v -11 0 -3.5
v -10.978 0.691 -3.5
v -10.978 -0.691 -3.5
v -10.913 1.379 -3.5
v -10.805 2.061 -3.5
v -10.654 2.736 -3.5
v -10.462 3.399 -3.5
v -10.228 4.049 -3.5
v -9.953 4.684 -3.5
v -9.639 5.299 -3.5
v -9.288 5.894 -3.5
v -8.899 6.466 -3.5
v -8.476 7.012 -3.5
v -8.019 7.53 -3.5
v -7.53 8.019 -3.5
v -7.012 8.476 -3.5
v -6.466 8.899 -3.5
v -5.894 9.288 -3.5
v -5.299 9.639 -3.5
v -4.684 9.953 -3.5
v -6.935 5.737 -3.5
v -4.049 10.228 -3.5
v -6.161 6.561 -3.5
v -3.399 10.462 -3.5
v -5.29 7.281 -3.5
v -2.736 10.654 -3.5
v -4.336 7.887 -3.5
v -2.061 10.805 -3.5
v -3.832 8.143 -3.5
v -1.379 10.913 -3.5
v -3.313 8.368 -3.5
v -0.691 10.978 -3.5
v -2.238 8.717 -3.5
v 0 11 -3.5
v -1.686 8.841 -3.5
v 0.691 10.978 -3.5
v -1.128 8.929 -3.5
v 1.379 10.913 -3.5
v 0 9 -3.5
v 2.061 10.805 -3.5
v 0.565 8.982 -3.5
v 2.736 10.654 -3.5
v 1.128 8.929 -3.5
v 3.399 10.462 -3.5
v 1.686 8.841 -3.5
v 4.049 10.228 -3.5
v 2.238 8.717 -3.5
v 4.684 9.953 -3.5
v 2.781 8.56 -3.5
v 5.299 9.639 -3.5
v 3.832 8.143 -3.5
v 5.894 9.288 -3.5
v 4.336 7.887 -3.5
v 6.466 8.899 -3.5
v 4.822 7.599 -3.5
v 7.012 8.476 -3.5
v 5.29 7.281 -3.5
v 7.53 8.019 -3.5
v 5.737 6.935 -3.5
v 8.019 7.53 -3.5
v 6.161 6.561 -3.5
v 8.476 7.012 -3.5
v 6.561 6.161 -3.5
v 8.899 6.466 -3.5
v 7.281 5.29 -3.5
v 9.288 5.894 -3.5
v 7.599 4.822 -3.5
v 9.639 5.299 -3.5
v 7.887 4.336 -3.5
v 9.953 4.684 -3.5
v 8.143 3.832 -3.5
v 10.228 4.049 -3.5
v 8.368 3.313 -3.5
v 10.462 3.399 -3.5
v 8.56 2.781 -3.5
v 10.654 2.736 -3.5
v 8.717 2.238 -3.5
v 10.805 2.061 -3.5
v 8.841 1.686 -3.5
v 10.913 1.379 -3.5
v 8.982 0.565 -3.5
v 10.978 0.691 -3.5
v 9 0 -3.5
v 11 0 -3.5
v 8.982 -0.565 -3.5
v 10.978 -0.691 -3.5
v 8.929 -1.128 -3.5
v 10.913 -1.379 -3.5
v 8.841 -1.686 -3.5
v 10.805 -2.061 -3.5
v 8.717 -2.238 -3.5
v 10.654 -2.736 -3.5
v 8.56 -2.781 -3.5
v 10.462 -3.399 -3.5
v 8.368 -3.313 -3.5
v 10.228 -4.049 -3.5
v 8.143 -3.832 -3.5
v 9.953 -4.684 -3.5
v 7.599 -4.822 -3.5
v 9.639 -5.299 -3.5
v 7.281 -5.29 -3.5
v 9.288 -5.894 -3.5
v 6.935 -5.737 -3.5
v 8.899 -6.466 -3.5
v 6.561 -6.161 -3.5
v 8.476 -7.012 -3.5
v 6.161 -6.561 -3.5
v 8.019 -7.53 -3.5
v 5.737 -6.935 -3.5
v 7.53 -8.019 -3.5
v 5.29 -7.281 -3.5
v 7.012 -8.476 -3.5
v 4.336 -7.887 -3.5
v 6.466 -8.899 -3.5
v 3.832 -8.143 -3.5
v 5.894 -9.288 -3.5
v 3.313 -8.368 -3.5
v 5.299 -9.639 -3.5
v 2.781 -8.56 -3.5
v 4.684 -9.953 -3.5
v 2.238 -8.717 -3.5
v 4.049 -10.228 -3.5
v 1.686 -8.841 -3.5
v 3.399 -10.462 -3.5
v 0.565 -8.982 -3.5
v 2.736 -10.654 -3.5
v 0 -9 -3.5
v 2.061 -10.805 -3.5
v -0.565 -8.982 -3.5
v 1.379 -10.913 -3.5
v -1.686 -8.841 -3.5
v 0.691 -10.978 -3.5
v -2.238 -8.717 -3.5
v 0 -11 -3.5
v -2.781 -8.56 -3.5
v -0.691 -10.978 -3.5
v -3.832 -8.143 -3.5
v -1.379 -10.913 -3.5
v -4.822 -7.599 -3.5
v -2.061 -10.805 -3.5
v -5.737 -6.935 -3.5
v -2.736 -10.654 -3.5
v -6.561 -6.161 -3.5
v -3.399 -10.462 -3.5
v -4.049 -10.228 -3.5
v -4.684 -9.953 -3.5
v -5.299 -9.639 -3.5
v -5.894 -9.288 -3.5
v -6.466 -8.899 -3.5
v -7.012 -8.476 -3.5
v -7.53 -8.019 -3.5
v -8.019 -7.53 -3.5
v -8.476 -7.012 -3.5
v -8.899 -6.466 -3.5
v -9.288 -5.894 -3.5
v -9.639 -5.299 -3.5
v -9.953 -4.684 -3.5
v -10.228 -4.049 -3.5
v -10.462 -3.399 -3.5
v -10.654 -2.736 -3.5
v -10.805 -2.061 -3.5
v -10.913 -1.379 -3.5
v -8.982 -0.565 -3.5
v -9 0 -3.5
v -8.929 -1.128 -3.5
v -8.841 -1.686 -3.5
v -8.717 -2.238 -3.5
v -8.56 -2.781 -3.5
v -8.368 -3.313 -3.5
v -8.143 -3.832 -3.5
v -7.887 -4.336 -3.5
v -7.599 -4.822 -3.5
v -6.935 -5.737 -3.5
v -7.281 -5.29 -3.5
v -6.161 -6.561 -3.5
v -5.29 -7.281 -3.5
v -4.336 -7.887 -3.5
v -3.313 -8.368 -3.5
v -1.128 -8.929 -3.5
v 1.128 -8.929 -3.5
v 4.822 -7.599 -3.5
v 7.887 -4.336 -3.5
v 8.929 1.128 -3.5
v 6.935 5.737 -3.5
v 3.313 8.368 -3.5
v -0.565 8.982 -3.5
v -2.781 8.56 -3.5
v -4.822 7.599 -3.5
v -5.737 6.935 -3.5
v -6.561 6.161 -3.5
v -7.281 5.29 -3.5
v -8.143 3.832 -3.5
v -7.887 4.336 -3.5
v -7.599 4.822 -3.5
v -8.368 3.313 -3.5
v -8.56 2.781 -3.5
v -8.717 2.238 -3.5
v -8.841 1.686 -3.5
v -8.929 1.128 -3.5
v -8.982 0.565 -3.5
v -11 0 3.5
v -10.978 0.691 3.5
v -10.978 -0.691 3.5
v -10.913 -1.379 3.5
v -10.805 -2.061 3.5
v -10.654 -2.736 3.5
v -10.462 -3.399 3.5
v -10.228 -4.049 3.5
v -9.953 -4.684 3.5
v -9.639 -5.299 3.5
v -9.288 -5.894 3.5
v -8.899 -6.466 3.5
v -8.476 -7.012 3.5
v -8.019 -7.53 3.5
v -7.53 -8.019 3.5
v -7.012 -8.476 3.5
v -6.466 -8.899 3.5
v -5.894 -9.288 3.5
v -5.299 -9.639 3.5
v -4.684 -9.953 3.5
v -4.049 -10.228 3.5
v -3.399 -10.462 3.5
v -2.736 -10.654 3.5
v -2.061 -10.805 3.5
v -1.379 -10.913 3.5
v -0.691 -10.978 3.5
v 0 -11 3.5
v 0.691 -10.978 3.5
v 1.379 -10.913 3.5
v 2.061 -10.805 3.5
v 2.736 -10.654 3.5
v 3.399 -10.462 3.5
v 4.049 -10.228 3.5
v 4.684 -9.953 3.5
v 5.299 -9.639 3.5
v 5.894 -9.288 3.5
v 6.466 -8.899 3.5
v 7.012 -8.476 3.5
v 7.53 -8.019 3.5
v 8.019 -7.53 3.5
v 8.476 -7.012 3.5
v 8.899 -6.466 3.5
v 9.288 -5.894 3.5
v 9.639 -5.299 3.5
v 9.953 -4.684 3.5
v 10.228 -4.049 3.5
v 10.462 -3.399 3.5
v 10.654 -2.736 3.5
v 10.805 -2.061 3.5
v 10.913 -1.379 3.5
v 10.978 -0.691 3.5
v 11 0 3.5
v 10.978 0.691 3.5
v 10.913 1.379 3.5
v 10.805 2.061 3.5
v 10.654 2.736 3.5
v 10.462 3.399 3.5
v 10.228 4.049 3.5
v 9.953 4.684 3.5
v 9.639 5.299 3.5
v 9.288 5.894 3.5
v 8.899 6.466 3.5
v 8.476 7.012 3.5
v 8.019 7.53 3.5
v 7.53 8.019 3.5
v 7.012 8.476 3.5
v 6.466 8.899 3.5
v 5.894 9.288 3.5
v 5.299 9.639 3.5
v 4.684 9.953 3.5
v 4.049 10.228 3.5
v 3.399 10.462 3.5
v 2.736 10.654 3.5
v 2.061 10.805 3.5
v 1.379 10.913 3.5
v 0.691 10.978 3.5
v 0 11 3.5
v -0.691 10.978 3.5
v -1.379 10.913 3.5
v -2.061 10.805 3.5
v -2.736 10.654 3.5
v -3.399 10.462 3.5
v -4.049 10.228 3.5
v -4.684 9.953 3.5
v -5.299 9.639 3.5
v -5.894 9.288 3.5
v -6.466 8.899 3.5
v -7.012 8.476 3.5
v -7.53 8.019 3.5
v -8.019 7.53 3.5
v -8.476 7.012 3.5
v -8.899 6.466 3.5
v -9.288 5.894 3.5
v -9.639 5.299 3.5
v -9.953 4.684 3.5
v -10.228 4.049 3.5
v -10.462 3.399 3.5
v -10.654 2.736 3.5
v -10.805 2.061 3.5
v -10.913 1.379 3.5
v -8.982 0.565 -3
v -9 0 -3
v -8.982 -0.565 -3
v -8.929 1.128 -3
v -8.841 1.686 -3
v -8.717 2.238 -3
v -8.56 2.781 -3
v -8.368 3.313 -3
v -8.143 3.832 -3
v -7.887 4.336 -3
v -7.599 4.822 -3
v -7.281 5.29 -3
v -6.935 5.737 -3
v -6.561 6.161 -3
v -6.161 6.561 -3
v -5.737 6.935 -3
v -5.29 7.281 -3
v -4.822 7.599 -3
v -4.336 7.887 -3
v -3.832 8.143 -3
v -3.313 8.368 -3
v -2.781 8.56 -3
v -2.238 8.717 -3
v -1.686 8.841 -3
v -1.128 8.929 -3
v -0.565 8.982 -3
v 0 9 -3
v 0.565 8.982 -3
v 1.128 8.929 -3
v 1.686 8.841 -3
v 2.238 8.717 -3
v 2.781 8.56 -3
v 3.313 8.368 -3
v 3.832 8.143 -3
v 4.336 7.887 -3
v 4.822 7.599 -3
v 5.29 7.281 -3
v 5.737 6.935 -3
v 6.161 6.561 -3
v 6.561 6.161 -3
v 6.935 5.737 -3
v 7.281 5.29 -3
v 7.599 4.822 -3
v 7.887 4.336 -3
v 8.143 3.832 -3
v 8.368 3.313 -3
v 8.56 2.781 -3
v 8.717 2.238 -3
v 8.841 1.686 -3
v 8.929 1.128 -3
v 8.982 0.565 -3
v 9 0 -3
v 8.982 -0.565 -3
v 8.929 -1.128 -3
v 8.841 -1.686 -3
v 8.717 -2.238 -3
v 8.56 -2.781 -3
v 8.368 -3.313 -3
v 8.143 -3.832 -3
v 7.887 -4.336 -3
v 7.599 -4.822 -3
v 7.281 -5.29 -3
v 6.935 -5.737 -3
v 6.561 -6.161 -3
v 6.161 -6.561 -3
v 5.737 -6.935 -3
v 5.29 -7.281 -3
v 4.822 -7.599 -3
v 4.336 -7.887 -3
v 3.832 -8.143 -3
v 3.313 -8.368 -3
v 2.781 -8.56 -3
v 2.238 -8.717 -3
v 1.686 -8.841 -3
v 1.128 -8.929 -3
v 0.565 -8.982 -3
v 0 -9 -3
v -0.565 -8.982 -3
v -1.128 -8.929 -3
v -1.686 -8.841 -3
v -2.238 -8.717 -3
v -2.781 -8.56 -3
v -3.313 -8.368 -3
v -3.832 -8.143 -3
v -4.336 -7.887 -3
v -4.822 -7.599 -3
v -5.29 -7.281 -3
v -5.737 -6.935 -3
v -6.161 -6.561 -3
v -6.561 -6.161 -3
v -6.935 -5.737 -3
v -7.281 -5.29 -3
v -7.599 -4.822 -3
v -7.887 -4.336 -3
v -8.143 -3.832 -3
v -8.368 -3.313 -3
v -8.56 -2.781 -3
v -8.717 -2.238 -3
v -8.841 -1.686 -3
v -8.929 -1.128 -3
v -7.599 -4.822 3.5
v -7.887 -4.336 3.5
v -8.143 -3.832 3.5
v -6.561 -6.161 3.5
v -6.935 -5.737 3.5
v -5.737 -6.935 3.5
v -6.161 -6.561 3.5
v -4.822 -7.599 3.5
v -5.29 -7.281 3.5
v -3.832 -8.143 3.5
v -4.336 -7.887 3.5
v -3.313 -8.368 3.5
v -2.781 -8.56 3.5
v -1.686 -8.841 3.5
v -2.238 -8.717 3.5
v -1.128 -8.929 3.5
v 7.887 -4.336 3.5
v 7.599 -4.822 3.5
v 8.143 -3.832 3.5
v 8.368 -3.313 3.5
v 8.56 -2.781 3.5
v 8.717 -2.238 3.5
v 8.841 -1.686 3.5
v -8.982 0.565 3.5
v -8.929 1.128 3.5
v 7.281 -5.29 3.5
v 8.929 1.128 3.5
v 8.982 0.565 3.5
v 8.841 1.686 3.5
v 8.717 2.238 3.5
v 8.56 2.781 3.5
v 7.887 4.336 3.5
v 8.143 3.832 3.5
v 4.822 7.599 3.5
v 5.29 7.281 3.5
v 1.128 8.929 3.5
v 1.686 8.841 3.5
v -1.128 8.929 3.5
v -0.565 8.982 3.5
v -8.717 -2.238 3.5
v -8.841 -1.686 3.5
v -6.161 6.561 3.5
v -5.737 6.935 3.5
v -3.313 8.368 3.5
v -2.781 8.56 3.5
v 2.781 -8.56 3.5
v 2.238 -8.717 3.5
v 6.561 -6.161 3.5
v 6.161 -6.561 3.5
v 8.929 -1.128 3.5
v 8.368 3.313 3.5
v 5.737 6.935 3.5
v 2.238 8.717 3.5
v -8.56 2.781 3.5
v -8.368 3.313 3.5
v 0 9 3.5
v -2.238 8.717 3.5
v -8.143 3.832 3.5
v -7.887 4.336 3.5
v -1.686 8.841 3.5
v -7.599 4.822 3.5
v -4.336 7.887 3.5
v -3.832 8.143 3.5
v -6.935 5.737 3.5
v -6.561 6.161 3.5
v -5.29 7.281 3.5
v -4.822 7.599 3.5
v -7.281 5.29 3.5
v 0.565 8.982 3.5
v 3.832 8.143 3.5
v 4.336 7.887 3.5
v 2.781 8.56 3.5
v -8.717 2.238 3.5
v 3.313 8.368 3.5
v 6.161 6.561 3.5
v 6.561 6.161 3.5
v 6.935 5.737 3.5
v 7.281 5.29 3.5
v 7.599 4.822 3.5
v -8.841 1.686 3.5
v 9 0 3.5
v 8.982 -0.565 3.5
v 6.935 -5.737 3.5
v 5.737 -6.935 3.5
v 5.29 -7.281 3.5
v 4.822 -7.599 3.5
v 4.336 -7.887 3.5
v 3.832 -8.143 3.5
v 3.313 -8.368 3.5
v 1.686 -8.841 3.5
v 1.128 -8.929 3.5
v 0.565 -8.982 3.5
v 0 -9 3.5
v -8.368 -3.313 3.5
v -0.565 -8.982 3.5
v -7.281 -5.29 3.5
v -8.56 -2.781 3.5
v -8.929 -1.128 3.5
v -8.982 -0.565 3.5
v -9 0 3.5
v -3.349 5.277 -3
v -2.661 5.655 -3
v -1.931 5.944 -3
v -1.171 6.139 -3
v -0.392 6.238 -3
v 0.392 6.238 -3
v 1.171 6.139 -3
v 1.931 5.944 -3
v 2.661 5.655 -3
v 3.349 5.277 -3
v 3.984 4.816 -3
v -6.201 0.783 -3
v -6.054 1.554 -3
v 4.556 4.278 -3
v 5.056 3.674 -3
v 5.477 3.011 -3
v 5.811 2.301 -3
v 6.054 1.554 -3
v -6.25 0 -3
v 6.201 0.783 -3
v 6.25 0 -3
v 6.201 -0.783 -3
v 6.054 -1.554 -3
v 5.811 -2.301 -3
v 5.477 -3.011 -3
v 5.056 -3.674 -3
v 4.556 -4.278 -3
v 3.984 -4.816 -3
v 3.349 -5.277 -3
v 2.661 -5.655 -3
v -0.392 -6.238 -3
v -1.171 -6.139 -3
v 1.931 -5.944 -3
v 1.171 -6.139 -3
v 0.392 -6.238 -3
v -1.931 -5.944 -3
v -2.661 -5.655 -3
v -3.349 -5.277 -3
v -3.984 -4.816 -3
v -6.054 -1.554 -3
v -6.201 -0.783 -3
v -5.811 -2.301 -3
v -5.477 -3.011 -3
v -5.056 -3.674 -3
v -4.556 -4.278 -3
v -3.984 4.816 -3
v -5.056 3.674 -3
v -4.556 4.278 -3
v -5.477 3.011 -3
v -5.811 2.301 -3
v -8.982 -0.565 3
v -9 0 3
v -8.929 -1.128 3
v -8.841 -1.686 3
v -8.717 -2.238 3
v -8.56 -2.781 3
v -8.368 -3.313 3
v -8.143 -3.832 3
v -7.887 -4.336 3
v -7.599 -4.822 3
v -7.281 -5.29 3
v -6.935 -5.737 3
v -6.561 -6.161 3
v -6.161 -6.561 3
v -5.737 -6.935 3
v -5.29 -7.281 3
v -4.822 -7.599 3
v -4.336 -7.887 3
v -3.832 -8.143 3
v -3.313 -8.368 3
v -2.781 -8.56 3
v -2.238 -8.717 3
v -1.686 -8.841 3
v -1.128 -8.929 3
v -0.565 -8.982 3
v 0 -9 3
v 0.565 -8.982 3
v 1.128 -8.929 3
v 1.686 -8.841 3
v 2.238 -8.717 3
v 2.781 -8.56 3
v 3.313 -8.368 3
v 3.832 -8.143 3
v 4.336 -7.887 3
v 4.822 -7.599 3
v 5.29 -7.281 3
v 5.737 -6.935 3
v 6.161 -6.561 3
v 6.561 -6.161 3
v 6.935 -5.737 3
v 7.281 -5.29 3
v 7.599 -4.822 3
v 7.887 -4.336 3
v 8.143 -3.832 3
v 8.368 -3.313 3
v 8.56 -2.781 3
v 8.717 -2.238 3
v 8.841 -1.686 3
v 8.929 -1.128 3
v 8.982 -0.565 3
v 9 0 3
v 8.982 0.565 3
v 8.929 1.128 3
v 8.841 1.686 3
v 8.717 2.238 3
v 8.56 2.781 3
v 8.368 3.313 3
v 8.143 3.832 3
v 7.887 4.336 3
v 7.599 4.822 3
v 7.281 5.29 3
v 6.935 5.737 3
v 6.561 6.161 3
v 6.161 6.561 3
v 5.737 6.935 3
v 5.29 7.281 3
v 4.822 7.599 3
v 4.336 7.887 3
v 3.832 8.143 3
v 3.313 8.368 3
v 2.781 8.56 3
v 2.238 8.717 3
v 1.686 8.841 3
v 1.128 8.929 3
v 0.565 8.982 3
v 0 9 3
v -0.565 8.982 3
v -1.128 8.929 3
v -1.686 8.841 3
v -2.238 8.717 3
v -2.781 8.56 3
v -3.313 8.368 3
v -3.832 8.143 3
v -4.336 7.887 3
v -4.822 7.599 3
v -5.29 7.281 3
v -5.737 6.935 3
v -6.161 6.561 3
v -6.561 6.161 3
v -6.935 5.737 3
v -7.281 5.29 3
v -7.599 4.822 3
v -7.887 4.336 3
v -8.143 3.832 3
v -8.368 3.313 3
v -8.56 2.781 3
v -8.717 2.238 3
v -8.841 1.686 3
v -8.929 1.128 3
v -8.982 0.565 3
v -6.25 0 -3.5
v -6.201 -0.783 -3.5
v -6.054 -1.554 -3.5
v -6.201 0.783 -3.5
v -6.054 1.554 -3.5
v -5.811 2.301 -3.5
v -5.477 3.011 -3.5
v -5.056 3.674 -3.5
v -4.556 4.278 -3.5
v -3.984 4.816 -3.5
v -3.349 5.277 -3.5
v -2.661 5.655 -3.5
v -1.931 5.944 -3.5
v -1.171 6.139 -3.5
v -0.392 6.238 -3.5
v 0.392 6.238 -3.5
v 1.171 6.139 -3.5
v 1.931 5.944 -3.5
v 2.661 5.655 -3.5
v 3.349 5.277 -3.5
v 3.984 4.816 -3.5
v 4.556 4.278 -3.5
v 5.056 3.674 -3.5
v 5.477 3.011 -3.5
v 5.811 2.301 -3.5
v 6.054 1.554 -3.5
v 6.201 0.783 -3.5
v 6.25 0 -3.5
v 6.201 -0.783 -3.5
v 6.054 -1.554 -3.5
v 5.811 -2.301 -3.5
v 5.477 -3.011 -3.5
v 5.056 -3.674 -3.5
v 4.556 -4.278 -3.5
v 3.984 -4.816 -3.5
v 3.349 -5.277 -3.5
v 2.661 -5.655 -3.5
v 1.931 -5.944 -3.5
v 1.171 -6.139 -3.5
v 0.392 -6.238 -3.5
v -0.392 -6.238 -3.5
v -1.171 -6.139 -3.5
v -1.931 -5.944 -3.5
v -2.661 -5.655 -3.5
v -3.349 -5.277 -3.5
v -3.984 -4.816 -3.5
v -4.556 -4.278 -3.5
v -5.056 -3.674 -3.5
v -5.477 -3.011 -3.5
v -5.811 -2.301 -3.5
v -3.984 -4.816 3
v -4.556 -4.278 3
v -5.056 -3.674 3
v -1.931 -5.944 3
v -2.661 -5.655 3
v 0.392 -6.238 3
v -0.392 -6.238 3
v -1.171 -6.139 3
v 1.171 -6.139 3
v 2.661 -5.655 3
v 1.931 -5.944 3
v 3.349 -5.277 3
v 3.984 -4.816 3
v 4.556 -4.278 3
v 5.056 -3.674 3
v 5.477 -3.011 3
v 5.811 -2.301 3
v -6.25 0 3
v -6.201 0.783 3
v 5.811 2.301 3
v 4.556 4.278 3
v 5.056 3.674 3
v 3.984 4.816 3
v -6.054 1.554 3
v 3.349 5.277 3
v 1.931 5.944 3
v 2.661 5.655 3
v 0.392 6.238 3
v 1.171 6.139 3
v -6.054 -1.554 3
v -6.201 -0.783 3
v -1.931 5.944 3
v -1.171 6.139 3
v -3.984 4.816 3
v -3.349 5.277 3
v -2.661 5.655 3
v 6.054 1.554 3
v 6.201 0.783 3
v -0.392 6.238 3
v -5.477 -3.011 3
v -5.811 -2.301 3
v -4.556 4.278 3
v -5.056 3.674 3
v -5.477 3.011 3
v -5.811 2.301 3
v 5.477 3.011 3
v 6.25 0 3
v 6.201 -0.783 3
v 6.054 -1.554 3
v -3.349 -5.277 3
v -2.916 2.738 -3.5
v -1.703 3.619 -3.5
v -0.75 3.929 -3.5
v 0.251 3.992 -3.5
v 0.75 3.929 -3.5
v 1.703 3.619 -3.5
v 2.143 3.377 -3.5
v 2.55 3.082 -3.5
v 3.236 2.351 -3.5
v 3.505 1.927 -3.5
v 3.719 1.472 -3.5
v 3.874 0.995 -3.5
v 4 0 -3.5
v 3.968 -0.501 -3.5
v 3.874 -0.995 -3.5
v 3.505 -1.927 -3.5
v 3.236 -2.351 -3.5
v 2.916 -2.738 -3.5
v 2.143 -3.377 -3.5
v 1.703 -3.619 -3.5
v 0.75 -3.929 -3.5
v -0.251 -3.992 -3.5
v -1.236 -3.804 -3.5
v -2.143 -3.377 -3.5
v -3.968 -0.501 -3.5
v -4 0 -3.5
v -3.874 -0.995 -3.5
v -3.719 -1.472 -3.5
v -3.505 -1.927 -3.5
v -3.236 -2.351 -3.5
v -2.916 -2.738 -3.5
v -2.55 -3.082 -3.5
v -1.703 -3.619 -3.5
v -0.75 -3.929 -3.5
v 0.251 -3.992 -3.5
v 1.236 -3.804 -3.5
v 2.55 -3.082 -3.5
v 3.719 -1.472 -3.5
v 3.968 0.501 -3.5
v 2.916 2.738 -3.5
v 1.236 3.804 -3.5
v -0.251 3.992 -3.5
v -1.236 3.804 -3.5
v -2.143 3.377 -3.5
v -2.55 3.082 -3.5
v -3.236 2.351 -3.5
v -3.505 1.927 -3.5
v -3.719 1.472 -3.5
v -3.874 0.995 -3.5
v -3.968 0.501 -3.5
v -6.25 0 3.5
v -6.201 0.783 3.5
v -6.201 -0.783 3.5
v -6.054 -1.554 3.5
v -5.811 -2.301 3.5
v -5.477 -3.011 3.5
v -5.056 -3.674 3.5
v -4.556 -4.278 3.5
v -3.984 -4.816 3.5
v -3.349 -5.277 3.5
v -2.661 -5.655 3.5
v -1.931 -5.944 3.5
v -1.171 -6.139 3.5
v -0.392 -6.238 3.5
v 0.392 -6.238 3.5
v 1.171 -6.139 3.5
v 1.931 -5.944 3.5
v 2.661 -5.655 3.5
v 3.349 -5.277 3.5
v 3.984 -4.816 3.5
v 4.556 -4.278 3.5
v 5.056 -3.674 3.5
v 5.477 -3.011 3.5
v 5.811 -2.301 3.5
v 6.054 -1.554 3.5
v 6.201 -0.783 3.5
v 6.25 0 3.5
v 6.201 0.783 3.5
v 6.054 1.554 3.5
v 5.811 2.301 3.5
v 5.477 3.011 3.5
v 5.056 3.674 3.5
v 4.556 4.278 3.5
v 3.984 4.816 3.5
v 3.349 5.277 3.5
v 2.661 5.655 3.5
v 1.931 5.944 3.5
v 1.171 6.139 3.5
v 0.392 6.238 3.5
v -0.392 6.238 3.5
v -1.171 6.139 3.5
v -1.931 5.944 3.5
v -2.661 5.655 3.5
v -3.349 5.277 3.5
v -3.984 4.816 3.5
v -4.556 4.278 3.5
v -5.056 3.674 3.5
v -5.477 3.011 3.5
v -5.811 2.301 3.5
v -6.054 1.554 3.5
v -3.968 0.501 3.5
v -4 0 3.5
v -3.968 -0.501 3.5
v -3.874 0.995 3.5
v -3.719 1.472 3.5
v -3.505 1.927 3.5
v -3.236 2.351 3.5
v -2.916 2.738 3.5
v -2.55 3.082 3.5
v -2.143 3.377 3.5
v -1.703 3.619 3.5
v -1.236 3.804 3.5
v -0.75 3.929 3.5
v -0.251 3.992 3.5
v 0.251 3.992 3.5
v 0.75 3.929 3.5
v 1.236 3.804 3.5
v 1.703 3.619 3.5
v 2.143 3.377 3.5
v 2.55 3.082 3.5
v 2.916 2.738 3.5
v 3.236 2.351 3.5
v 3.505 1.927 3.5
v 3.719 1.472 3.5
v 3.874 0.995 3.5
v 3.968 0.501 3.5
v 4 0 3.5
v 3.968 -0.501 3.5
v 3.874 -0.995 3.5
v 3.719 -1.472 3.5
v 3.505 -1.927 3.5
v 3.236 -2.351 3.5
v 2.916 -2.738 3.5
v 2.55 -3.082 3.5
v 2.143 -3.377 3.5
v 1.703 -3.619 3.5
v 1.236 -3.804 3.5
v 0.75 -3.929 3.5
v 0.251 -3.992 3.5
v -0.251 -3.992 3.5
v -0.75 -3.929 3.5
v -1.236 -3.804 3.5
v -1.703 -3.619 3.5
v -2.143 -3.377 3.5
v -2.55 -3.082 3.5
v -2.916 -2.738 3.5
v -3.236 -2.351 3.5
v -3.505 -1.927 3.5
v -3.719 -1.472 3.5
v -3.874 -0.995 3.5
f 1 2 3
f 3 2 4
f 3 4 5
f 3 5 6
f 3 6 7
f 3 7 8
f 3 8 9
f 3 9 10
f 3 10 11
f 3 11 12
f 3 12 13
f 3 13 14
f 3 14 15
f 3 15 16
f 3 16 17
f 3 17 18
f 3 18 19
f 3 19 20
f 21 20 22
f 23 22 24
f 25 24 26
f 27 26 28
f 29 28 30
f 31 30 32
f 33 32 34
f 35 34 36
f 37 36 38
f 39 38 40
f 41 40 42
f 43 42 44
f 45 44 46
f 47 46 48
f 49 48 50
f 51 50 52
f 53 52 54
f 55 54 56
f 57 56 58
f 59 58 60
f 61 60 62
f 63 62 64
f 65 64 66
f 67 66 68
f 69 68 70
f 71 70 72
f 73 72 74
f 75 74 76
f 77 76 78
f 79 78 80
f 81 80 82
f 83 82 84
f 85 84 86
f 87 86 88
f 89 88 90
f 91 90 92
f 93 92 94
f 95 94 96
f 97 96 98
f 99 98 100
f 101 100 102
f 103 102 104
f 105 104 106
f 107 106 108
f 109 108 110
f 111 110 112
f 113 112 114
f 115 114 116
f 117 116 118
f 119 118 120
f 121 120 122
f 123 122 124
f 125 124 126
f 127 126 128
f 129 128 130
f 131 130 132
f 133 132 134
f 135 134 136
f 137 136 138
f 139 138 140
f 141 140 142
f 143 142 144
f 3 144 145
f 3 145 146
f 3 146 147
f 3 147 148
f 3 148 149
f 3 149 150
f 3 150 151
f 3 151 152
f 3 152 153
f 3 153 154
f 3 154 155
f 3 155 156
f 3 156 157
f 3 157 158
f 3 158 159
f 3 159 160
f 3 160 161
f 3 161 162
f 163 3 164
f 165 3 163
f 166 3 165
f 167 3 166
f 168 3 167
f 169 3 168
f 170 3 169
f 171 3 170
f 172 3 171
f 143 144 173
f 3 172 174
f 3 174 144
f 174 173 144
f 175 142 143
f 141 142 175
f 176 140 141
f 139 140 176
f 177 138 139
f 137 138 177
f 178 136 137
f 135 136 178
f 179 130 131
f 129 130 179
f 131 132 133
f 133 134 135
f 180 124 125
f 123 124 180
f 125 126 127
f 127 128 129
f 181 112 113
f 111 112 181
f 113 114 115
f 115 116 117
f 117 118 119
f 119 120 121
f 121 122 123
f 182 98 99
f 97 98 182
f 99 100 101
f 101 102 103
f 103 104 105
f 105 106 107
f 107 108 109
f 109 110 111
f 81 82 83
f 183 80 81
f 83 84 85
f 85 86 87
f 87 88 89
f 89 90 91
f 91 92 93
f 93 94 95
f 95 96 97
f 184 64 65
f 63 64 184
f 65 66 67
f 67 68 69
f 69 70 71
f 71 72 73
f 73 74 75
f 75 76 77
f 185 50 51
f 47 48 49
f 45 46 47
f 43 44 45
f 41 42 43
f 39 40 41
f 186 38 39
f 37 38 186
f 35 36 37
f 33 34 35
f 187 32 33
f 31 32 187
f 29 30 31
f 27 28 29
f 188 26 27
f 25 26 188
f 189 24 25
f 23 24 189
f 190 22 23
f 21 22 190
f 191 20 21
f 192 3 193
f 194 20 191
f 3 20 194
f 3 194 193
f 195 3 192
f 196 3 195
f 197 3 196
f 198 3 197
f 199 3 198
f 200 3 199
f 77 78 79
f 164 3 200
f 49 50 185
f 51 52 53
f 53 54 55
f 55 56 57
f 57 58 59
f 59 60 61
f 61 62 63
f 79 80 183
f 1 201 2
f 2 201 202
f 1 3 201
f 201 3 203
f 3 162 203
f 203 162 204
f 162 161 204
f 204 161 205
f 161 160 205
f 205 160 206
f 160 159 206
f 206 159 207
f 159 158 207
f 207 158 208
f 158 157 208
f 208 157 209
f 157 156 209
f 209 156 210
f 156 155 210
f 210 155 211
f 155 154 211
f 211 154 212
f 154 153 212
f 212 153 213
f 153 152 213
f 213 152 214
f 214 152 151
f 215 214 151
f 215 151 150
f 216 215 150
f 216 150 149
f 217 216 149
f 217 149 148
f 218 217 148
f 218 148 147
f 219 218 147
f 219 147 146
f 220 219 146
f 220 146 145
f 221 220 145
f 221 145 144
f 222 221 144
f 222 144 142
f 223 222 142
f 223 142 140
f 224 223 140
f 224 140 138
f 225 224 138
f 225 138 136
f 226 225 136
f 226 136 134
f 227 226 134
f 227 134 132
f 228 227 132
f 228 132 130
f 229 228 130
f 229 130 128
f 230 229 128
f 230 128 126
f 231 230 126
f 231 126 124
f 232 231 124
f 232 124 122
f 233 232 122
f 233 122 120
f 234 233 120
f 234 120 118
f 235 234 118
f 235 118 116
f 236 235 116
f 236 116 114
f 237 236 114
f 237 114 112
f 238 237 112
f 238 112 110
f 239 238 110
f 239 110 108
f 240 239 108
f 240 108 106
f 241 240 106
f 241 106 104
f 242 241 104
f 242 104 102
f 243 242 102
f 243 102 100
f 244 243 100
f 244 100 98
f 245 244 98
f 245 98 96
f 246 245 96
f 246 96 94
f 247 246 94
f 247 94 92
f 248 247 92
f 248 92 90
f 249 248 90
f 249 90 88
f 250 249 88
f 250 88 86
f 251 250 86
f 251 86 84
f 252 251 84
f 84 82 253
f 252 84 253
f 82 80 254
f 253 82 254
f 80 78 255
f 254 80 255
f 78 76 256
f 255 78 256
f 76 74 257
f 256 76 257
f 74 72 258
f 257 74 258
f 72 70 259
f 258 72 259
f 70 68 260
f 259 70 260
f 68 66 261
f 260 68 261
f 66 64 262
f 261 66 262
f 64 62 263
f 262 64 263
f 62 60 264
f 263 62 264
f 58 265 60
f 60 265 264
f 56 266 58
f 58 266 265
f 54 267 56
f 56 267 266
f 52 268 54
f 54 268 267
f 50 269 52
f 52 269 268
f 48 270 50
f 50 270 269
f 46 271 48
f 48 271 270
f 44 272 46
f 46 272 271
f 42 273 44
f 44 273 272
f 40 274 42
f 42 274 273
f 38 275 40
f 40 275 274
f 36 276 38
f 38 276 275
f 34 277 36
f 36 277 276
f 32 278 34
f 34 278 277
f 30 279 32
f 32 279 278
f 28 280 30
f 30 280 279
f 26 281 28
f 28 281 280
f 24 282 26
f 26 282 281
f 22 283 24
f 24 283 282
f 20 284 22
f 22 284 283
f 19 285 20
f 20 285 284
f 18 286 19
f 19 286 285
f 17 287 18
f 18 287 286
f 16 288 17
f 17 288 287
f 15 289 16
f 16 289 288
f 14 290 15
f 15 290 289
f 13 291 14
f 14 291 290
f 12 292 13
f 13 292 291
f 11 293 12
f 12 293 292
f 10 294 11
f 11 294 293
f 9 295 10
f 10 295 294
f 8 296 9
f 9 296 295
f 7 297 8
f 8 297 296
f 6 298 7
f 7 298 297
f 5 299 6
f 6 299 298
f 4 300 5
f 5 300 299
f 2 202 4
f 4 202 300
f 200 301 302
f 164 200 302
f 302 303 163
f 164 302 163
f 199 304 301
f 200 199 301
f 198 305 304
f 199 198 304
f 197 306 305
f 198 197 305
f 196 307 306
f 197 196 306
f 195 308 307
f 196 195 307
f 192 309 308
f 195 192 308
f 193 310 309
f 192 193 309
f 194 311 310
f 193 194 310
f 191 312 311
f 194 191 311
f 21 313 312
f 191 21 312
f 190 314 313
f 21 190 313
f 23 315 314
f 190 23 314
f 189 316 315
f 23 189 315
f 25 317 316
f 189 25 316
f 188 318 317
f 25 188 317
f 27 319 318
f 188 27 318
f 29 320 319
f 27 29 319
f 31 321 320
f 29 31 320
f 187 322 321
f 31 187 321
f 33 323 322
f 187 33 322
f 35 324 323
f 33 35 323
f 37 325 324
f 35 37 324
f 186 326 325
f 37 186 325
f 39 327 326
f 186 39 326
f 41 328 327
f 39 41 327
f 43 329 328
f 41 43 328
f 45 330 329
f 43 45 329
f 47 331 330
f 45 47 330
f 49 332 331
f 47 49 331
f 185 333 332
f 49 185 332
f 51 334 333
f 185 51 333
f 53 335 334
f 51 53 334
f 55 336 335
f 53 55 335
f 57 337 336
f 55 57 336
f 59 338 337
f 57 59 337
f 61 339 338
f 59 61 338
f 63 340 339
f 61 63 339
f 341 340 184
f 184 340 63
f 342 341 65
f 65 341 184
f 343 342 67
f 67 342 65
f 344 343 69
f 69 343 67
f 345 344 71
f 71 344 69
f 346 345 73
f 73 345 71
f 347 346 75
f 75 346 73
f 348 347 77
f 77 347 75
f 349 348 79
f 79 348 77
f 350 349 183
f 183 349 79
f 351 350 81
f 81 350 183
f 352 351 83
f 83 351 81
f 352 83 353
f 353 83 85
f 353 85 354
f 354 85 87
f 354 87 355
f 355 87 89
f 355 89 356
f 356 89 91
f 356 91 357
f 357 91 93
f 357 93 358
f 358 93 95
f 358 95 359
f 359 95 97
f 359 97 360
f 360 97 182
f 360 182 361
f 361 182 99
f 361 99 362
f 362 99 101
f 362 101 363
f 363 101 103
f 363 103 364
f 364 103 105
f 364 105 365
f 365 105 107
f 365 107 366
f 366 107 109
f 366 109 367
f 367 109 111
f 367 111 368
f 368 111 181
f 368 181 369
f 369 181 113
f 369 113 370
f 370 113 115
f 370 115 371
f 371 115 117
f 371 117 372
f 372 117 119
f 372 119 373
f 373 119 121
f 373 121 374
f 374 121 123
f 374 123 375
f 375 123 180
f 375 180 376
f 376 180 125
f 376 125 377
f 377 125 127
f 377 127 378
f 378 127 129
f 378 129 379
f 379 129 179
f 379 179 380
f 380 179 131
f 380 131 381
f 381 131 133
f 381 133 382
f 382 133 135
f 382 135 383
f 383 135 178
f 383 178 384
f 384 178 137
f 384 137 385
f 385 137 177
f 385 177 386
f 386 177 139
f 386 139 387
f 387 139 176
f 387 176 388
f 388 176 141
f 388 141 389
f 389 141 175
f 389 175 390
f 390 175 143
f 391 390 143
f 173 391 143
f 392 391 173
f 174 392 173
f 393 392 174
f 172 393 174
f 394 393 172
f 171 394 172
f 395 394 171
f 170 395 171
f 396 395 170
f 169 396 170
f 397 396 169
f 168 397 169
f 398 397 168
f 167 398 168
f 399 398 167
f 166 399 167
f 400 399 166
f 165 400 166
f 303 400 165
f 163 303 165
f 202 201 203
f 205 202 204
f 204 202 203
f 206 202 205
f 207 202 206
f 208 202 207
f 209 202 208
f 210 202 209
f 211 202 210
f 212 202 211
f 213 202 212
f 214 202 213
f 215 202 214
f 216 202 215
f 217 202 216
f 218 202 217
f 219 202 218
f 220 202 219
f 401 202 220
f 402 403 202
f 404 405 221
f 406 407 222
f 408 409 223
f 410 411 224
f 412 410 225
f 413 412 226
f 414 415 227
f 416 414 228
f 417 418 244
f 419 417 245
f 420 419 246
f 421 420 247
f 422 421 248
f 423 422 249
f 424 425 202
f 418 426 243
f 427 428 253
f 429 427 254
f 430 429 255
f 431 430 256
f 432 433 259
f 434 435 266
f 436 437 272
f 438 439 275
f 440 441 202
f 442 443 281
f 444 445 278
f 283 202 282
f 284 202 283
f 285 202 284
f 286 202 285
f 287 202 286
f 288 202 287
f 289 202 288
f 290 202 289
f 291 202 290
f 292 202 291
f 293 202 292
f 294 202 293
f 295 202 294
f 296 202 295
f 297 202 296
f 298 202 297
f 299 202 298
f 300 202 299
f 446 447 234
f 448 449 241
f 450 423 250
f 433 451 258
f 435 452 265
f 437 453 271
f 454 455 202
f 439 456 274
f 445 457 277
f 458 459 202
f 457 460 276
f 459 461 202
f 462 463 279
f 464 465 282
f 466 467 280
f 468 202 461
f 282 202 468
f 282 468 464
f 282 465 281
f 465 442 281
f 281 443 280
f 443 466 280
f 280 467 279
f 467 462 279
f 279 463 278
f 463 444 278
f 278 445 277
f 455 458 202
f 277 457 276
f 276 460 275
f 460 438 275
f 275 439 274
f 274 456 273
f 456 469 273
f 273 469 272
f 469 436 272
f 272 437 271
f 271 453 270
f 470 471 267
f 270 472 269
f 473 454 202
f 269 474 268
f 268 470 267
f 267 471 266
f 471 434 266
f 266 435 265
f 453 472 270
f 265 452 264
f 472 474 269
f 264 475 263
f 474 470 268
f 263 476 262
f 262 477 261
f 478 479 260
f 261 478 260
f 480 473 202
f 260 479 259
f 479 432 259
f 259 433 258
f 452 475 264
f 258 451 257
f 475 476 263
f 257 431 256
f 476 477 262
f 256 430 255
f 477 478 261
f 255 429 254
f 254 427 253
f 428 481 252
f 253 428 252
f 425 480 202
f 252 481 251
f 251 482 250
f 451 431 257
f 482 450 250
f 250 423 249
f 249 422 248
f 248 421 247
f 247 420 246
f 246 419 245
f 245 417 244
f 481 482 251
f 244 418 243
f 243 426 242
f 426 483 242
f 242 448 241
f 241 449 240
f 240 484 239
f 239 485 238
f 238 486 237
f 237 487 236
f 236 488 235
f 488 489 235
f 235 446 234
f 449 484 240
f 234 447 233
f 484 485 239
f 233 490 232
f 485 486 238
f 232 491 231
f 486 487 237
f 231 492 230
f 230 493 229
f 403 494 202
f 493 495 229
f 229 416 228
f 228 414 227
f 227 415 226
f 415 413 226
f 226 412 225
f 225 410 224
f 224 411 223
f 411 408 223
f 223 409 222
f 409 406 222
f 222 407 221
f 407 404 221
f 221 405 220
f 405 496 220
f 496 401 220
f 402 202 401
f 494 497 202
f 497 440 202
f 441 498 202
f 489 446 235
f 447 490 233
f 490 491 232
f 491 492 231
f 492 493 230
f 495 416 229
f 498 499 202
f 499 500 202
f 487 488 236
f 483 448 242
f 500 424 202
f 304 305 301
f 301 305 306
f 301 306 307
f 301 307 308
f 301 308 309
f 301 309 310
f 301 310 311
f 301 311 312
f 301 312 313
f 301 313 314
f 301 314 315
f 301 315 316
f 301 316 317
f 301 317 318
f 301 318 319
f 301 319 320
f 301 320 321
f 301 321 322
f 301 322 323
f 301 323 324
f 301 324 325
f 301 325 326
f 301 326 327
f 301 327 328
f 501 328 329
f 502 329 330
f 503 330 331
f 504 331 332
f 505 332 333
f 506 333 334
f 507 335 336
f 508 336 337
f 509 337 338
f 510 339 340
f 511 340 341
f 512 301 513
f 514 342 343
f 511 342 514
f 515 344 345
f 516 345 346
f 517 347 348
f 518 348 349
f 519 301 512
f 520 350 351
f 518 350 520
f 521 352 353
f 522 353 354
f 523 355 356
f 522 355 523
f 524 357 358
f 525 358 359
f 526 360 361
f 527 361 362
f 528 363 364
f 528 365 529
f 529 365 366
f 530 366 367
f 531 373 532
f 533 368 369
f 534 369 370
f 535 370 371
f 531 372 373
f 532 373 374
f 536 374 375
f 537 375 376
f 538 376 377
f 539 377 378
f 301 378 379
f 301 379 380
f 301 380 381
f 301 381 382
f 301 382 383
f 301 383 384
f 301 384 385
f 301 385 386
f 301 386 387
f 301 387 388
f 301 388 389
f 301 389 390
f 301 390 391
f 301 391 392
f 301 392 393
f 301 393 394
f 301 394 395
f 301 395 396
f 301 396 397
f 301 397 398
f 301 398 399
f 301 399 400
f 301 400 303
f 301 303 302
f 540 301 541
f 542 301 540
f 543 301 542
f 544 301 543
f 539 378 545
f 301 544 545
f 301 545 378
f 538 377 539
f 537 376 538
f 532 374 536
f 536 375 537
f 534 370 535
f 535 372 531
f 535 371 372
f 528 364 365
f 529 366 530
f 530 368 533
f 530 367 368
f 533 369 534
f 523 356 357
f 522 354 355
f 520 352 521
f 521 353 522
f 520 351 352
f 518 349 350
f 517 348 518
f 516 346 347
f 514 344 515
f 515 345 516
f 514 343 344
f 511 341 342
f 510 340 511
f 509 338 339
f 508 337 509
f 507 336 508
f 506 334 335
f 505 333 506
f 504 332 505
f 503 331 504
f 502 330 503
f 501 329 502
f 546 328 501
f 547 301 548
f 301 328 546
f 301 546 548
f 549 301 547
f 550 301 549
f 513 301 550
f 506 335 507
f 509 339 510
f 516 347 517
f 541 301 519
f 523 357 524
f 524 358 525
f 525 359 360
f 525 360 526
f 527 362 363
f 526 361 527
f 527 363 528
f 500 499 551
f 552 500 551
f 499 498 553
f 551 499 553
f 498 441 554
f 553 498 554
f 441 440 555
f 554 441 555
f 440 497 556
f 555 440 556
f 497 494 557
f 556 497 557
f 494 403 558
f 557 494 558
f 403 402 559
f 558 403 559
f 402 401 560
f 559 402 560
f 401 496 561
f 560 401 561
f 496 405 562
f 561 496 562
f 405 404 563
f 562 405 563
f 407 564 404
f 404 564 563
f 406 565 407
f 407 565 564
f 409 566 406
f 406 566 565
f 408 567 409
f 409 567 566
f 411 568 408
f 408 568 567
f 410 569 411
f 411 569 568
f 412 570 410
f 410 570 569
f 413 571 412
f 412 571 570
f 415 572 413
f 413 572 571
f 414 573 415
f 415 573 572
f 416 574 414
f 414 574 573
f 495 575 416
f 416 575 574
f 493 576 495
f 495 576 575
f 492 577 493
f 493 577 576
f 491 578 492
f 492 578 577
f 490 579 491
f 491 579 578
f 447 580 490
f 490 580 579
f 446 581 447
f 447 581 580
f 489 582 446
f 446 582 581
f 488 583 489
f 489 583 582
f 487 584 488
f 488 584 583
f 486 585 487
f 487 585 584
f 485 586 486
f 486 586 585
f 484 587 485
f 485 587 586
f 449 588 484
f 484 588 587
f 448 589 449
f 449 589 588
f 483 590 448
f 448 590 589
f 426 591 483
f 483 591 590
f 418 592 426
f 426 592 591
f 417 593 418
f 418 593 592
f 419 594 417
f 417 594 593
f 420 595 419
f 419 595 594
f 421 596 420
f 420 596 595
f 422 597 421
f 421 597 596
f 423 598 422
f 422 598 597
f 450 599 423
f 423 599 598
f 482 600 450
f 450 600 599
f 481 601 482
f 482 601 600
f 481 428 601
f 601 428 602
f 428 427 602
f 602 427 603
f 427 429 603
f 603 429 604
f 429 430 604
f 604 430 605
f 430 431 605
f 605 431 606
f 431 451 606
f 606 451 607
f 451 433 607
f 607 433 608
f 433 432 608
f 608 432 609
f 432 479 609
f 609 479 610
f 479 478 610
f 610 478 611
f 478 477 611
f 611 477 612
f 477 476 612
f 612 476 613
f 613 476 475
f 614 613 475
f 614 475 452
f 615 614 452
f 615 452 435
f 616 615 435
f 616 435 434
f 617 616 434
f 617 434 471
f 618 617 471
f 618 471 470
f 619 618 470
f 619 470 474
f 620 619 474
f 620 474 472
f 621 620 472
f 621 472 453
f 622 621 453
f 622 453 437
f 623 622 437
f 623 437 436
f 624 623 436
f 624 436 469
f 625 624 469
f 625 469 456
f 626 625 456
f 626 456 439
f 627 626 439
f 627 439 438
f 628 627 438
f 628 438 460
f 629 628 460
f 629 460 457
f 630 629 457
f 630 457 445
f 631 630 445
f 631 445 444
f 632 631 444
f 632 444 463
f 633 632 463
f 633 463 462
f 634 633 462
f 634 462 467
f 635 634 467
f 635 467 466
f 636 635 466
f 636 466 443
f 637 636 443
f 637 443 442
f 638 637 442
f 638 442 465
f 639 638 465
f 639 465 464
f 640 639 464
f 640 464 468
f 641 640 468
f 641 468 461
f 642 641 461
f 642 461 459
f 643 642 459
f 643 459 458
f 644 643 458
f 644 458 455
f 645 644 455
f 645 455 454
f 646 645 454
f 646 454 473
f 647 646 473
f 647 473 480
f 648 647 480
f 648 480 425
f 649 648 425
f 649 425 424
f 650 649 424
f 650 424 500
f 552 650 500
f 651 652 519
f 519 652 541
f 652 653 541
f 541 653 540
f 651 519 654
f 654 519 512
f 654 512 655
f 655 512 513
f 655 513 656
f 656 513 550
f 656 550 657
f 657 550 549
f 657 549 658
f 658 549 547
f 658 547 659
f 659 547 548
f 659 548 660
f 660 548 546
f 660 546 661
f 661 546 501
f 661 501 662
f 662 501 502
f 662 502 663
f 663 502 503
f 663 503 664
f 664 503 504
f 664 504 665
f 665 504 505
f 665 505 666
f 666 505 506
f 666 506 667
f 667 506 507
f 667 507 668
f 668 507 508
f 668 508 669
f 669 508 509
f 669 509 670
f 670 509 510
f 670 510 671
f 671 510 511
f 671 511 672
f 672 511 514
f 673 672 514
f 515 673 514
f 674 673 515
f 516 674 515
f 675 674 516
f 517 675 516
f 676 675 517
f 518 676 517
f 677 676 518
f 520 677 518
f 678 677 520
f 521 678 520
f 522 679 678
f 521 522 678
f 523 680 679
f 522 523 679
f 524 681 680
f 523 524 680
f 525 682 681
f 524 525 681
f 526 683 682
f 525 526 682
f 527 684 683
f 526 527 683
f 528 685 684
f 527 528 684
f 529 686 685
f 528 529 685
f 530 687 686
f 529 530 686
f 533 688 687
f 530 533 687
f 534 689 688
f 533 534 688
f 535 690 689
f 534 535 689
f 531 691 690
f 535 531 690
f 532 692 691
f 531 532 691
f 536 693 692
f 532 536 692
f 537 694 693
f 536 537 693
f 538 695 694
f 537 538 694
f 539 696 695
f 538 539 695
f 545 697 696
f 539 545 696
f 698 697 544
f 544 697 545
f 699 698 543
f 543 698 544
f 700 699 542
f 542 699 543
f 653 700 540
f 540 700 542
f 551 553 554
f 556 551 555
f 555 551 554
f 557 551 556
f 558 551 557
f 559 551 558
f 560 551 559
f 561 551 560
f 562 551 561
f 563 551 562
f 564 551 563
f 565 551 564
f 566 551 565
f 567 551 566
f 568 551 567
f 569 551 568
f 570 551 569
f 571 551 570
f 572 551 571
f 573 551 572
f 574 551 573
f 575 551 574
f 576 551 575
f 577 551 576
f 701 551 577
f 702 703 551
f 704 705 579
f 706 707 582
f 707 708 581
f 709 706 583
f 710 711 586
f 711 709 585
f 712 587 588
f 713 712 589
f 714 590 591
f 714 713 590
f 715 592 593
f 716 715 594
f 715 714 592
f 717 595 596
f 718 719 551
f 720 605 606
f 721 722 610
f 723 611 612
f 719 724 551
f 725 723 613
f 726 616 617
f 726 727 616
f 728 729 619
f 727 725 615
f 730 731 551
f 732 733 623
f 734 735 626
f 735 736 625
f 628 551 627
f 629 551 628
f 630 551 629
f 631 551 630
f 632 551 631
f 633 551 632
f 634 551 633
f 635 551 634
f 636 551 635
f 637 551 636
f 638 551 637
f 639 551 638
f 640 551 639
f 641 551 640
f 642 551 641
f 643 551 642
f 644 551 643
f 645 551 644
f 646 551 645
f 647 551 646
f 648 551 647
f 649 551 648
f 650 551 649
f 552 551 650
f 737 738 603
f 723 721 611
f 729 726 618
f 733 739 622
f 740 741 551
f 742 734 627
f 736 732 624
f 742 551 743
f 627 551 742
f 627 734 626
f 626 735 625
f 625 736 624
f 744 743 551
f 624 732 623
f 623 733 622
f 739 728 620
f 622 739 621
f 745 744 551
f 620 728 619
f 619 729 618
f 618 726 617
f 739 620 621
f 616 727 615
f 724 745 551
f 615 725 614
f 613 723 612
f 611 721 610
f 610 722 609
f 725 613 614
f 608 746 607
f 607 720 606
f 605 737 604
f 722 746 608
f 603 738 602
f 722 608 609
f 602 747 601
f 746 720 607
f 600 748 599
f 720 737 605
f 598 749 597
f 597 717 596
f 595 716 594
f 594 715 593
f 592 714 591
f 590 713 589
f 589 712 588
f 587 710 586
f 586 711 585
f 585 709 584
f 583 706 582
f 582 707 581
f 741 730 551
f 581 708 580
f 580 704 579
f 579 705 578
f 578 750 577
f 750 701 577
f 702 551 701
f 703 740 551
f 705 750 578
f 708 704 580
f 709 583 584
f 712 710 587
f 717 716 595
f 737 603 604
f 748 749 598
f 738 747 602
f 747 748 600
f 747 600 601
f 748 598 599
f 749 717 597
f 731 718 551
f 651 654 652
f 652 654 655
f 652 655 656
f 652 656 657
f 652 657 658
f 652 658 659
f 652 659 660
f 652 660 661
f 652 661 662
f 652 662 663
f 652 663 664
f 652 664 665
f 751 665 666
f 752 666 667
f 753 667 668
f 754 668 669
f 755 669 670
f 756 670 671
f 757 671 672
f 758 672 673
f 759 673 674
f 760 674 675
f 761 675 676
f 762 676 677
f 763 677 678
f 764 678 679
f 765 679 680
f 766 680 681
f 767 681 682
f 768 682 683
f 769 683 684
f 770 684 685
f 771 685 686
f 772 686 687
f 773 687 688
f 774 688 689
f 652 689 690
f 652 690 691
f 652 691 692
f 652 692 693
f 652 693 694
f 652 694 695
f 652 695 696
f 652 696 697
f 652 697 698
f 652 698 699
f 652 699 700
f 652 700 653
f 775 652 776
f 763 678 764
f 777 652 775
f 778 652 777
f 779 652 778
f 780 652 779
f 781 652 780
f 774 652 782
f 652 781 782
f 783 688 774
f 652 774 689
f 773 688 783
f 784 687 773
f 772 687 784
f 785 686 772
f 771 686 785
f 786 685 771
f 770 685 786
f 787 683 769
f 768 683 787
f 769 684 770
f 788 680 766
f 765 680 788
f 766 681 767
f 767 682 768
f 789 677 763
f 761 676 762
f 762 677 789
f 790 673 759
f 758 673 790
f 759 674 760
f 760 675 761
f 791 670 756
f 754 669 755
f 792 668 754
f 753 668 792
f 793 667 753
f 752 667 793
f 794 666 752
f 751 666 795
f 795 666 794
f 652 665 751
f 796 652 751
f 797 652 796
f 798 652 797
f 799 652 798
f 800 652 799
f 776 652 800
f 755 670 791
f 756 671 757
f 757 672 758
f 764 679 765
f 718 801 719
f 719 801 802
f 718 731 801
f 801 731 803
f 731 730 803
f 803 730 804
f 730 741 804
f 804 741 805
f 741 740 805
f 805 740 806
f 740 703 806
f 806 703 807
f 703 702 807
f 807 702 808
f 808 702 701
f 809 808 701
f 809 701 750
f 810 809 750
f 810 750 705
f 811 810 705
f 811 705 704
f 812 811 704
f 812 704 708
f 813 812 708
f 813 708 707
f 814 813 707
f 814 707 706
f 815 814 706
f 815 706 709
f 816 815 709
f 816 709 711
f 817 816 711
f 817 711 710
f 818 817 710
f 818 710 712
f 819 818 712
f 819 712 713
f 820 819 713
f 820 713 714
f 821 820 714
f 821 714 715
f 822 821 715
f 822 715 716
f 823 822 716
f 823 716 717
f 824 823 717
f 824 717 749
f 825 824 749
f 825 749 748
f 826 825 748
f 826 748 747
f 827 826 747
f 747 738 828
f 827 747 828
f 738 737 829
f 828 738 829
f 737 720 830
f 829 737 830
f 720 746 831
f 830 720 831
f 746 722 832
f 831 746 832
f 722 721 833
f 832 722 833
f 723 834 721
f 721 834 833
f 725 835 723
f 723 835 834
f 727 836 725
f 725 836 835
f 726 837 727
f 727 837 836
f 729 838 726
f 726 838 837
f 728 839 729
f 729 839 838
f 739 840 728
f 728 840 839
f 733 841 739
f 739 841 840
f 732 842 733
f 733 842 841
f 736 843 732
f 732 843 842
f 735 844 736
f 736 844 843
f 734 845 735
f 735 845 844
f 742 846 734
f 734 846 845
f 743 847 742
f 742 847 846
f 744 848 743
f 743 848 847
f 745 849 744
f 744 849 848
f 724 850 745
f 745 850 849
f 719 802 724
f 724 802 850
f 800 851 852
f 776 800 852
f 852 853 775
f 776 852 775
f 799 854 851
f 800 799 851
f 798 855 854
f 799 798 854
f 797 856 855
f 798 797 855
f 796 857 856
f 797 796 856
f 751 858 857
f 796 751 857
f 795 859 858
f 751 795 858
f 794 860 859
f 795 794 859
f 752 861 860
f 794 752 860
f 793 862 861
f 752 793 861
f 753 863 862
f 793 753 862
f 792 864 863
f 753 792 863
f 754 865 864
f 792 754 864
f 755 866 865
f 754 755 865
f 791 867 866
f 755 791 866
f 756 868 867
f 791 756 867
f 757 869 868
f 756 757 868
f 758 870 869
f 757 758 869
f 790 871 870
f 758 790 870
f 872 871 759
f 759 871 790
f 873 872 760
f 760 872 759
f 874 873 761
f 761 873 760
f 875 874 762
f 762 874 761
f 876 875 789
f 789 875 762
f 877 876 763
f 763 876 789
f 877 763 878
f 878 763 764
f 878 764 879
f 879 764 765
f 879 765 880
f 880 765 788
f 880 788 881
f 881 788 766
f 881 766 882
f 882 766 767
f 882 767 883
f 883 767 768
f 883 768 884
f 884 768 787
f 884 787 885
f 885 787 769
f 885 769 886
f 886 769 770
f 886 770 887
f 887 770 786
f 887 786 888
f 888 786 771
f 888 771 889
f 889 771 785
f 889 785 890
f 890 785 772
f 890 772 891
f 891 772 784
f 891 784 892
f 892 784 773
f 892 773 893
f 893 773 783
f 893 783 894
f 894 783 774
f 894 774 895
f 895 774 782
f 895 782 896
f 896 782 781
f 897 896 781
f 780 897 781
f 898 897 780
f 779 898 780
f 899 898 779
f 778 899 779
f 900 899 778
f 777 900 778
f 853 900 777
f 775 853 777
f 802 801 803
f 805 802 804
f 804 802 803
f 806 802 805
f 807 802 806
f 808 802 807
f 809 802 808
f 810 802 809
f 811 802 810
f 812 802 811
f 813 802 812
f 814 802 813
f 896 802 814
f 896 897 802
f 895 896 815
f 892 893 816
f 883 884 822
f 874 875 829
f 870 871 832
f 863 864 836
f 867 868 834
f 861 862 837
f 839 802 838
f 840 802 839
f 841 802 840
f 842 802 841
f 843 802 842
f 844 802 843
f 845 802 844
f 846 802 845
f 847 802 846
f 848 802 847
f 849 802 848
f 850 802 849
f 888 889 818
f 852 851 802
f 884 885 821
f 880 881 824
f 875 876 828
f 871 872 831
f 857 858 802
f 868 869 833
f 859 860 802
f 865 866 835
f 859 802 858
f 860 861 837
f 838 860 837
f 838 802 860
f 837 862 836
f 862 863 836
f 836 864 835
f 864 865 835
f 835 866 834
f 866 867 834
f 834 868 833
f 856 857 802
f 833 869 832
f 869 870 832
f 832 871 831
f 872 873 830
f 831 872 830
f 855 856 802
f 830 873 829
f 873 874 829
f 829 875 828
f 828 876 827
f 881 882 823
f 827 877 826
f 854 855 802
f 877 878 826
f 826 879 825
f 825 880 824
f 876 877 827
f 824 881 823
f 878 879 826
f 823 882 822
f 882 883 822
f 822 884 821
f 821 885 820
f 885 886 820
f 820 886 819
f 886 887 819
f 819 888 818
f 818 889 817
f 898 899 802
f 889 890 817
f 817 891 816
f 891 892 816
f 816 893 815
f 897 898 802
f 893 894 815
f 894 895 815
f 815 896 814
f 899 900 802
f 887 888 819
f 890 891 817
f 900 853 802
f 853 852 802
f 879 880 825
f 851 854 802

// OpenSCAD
diam = 22;
idiam = 8;
th = 7;

extra = 10;

module ring(id, od, th)
{
  difference() {
    cylinder(r = od/2, h = th, center = true, $fn = 100);
    cylinder(r = id/2, h = th + extra, center = true, $fn = 50);
  }
}

difference() {
  ring (id = idiam, od = diam, th = th);

  translate([0,0,3/2 + th/2 -0.5])
    ring(id = 12.5, od = 18, th = 3);

  translate([0,0, -3/2 - th/2 +0.5])
    ring(id = 12.5, od = 18, th = 3);
}
